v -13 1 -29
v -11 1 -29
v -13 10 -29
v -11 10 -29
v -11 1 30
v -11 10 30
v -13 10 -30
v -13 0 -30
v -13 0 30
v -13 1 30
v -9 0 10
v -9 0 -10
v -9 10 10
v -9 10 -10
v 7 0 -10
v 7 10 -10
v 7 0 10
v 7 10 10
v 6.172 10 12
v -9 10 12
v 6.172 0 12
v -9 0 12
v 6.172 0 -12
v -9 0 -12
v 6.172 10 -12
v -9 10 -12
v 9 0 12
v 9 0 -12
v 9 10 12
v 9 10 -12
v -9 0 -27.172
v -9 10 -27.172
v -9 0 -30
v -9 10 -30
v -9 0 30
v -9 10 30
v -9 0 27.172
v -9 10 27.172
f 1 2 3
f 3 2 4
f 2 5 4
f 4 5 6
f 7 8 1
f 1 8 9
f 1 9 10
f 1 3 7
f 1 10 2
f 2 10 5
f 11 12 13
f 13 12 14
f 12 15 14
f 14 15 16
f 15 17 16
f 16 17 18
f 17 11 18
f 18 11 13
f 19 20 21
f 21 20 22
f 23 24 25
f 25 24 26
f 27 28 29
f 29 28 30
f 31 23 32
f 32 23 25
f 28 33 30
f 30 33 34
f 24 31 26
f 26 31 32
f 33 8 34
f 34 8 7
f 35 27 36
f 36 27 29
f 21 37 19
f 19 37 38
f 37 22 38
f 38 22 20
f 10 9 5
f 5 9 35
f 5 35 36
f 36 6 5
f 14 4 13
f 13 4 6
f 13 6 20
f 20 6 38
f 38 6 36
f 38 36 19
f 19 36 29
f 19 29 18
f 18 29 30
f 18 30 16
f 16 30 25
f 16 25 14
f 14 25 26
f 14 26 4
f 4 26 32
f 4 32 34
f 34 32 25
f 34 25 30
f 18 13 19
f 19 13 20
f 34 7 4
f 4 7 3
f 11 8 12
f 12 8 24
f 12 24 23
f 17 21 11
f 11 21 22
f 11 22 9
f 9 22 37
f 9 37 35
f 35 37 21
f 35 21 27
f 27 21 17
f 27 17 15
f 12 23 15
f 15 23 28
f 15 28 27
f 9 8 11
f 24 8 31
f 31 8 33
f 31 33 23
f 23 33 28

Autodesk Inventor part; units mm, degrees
ref_plane "YZ Plane" through (0, 0, 0) normal (1, 0, 0) x (0, 1, 0)
ref_plane "XZ Plane" through (0, 0, 0) normal (0, 1, 0) x (-1, 0, 0)
ref_plane "XY Plane" through (0, 0, 0) normal (0, 0, 1) x (1, 0, 0)
sketch "Sketch1" plane through (0, 0, 0) normal (0, 1, 0) x (-1, 0, 0)
  line L0 (9, 10) -> (-7, 10)
  line L1 (-7, 10) -> (-7, -10)
  line L2 (-7, -10) -> (9, -10)
  line L3 (9, -10) -> (9, 10)
  line L4 (9, 10) -> (-7, -10) construction
  line L5 (-7, 10) -> (9, -10) construction
  line L6 (-9, 12) -> (11, 12)
  line L7 (11, 12) -> (11, -12)
  line L8 (11, -12) -> (-9, -12)
  line L9 (-9, -12) -> (-9, 12)
  line L10 (-9, 12) -> (9, 30)
  line L11 (-9, 12) -> (21.2472, 12) construction
  line L12 (11, 12) -> (11, 30)
  line L13 (-9, -12) -> (9, -30)
  line L14 (-9, -12) -> (29.5291, -12) construction
  line L15 (11, -12) -> (11, -30)
  line L16 (9, 12) -> (9, 29.1716)
  line L17 (-6.1716, -12) -> (9, -27.1716)
  line L18 (9, -27.1716) -> (9, -12)
  line L19 (11, 12) -> (11, 10)
  line L20 (11, 12) -> (9, 12)
  line L21 (-8.1716, 12) -> (-9, 12)
  line L22 (-9, -12) -> (-6.1716, -12)
  line L23 (11, -12) -> (9, -12)
  line L24 (9, 29.1716) -> (9, 30)
  line L25 (9, 30) -> (11, 30)
  line L26 (9, -27.1716) -> (11, -27.1716)
  line L27 (9, -27.1716) -> (9, -30)
  line L28 (9, -30) -> (11, -30)
  line L29 (11, 12) -> (9, 12)
  line L30 (-8.1716, 12) -> (-9, 12)
  line L31 (-6.1716, -12) -> (9, -12)
  line L32 (11, -12) -> (9, -12)
  line L33 (9, 30) -> (9, 28)
  line L34 (9, 27.1716) -> (-6.1716, 12)
  line L35 (9, 27.1716) -> (9, 30)
  line L36 (9, 27.1716) -> (-6.1716, 12)
  line L37 (-9, 12) -> (-6.1716, 12)
  line L38 (9, 30) -> (-9, 12)
  point P0 (0, 0)
  point P1 (1, 0)
  dimension "d0" = 16
  dimension "d1" = 20
  dimension "d2" = 2
  dimension "d3" = 45
  dimension "d4" = 45
  dimension "d5" = 2
  dimension "d6" = 2
  dimension "d12" = 2
extrude "Extrusion2" add sketch "Sketch1" along normal blind 10 contours L10 L24 L16 L34 L6 | L6 L7 L8 L9 | L8 L17 L27 L13 | L25 L12 L6 L16 L24 | L27 L26 L15 L28 | L8 L15 L26 L18
sketch "Sketch3" plane through (0, 0, 0) normal (0, -1, 0) x (1, 0, 0)
  line L0 (-11, 30) -> (-13, 30)
  line L1 (-13, 30) -> (-13, -30)
  line L2 (-13, -30) -> (-11, -30)
  line L3 (-11, -30) -> (-11, 30) projected
  line L4 (-11, -30) -> (-11, 30)
  point P0 (0, 0)
  dimension "d15" = 2
  dimension "d16" = 60
extrude "Extrusion3" add sketch "Sketch3" against normal blind 1
sketch "Sketch4" plane through (-9, 10, -30) normal (0, 0, -1) x (-1, 0, 0)
  line L0 (2, -9) -> (2, 0) projected
  line L1 (2, 0) -> (2, -9)
  line L2 (4, -9) -> (2, -9) projected
  line L3 (2, -9) -> (4, -9)
  line L4 (4, -9) -> (4, 0)
  line L5 (4, 0) -> (2, 0)
  point P0 (-9, -10)
extrude "Extrusion4" add sketch "Sketch4" against normal blind 1
properties part number "Motor_Org"
